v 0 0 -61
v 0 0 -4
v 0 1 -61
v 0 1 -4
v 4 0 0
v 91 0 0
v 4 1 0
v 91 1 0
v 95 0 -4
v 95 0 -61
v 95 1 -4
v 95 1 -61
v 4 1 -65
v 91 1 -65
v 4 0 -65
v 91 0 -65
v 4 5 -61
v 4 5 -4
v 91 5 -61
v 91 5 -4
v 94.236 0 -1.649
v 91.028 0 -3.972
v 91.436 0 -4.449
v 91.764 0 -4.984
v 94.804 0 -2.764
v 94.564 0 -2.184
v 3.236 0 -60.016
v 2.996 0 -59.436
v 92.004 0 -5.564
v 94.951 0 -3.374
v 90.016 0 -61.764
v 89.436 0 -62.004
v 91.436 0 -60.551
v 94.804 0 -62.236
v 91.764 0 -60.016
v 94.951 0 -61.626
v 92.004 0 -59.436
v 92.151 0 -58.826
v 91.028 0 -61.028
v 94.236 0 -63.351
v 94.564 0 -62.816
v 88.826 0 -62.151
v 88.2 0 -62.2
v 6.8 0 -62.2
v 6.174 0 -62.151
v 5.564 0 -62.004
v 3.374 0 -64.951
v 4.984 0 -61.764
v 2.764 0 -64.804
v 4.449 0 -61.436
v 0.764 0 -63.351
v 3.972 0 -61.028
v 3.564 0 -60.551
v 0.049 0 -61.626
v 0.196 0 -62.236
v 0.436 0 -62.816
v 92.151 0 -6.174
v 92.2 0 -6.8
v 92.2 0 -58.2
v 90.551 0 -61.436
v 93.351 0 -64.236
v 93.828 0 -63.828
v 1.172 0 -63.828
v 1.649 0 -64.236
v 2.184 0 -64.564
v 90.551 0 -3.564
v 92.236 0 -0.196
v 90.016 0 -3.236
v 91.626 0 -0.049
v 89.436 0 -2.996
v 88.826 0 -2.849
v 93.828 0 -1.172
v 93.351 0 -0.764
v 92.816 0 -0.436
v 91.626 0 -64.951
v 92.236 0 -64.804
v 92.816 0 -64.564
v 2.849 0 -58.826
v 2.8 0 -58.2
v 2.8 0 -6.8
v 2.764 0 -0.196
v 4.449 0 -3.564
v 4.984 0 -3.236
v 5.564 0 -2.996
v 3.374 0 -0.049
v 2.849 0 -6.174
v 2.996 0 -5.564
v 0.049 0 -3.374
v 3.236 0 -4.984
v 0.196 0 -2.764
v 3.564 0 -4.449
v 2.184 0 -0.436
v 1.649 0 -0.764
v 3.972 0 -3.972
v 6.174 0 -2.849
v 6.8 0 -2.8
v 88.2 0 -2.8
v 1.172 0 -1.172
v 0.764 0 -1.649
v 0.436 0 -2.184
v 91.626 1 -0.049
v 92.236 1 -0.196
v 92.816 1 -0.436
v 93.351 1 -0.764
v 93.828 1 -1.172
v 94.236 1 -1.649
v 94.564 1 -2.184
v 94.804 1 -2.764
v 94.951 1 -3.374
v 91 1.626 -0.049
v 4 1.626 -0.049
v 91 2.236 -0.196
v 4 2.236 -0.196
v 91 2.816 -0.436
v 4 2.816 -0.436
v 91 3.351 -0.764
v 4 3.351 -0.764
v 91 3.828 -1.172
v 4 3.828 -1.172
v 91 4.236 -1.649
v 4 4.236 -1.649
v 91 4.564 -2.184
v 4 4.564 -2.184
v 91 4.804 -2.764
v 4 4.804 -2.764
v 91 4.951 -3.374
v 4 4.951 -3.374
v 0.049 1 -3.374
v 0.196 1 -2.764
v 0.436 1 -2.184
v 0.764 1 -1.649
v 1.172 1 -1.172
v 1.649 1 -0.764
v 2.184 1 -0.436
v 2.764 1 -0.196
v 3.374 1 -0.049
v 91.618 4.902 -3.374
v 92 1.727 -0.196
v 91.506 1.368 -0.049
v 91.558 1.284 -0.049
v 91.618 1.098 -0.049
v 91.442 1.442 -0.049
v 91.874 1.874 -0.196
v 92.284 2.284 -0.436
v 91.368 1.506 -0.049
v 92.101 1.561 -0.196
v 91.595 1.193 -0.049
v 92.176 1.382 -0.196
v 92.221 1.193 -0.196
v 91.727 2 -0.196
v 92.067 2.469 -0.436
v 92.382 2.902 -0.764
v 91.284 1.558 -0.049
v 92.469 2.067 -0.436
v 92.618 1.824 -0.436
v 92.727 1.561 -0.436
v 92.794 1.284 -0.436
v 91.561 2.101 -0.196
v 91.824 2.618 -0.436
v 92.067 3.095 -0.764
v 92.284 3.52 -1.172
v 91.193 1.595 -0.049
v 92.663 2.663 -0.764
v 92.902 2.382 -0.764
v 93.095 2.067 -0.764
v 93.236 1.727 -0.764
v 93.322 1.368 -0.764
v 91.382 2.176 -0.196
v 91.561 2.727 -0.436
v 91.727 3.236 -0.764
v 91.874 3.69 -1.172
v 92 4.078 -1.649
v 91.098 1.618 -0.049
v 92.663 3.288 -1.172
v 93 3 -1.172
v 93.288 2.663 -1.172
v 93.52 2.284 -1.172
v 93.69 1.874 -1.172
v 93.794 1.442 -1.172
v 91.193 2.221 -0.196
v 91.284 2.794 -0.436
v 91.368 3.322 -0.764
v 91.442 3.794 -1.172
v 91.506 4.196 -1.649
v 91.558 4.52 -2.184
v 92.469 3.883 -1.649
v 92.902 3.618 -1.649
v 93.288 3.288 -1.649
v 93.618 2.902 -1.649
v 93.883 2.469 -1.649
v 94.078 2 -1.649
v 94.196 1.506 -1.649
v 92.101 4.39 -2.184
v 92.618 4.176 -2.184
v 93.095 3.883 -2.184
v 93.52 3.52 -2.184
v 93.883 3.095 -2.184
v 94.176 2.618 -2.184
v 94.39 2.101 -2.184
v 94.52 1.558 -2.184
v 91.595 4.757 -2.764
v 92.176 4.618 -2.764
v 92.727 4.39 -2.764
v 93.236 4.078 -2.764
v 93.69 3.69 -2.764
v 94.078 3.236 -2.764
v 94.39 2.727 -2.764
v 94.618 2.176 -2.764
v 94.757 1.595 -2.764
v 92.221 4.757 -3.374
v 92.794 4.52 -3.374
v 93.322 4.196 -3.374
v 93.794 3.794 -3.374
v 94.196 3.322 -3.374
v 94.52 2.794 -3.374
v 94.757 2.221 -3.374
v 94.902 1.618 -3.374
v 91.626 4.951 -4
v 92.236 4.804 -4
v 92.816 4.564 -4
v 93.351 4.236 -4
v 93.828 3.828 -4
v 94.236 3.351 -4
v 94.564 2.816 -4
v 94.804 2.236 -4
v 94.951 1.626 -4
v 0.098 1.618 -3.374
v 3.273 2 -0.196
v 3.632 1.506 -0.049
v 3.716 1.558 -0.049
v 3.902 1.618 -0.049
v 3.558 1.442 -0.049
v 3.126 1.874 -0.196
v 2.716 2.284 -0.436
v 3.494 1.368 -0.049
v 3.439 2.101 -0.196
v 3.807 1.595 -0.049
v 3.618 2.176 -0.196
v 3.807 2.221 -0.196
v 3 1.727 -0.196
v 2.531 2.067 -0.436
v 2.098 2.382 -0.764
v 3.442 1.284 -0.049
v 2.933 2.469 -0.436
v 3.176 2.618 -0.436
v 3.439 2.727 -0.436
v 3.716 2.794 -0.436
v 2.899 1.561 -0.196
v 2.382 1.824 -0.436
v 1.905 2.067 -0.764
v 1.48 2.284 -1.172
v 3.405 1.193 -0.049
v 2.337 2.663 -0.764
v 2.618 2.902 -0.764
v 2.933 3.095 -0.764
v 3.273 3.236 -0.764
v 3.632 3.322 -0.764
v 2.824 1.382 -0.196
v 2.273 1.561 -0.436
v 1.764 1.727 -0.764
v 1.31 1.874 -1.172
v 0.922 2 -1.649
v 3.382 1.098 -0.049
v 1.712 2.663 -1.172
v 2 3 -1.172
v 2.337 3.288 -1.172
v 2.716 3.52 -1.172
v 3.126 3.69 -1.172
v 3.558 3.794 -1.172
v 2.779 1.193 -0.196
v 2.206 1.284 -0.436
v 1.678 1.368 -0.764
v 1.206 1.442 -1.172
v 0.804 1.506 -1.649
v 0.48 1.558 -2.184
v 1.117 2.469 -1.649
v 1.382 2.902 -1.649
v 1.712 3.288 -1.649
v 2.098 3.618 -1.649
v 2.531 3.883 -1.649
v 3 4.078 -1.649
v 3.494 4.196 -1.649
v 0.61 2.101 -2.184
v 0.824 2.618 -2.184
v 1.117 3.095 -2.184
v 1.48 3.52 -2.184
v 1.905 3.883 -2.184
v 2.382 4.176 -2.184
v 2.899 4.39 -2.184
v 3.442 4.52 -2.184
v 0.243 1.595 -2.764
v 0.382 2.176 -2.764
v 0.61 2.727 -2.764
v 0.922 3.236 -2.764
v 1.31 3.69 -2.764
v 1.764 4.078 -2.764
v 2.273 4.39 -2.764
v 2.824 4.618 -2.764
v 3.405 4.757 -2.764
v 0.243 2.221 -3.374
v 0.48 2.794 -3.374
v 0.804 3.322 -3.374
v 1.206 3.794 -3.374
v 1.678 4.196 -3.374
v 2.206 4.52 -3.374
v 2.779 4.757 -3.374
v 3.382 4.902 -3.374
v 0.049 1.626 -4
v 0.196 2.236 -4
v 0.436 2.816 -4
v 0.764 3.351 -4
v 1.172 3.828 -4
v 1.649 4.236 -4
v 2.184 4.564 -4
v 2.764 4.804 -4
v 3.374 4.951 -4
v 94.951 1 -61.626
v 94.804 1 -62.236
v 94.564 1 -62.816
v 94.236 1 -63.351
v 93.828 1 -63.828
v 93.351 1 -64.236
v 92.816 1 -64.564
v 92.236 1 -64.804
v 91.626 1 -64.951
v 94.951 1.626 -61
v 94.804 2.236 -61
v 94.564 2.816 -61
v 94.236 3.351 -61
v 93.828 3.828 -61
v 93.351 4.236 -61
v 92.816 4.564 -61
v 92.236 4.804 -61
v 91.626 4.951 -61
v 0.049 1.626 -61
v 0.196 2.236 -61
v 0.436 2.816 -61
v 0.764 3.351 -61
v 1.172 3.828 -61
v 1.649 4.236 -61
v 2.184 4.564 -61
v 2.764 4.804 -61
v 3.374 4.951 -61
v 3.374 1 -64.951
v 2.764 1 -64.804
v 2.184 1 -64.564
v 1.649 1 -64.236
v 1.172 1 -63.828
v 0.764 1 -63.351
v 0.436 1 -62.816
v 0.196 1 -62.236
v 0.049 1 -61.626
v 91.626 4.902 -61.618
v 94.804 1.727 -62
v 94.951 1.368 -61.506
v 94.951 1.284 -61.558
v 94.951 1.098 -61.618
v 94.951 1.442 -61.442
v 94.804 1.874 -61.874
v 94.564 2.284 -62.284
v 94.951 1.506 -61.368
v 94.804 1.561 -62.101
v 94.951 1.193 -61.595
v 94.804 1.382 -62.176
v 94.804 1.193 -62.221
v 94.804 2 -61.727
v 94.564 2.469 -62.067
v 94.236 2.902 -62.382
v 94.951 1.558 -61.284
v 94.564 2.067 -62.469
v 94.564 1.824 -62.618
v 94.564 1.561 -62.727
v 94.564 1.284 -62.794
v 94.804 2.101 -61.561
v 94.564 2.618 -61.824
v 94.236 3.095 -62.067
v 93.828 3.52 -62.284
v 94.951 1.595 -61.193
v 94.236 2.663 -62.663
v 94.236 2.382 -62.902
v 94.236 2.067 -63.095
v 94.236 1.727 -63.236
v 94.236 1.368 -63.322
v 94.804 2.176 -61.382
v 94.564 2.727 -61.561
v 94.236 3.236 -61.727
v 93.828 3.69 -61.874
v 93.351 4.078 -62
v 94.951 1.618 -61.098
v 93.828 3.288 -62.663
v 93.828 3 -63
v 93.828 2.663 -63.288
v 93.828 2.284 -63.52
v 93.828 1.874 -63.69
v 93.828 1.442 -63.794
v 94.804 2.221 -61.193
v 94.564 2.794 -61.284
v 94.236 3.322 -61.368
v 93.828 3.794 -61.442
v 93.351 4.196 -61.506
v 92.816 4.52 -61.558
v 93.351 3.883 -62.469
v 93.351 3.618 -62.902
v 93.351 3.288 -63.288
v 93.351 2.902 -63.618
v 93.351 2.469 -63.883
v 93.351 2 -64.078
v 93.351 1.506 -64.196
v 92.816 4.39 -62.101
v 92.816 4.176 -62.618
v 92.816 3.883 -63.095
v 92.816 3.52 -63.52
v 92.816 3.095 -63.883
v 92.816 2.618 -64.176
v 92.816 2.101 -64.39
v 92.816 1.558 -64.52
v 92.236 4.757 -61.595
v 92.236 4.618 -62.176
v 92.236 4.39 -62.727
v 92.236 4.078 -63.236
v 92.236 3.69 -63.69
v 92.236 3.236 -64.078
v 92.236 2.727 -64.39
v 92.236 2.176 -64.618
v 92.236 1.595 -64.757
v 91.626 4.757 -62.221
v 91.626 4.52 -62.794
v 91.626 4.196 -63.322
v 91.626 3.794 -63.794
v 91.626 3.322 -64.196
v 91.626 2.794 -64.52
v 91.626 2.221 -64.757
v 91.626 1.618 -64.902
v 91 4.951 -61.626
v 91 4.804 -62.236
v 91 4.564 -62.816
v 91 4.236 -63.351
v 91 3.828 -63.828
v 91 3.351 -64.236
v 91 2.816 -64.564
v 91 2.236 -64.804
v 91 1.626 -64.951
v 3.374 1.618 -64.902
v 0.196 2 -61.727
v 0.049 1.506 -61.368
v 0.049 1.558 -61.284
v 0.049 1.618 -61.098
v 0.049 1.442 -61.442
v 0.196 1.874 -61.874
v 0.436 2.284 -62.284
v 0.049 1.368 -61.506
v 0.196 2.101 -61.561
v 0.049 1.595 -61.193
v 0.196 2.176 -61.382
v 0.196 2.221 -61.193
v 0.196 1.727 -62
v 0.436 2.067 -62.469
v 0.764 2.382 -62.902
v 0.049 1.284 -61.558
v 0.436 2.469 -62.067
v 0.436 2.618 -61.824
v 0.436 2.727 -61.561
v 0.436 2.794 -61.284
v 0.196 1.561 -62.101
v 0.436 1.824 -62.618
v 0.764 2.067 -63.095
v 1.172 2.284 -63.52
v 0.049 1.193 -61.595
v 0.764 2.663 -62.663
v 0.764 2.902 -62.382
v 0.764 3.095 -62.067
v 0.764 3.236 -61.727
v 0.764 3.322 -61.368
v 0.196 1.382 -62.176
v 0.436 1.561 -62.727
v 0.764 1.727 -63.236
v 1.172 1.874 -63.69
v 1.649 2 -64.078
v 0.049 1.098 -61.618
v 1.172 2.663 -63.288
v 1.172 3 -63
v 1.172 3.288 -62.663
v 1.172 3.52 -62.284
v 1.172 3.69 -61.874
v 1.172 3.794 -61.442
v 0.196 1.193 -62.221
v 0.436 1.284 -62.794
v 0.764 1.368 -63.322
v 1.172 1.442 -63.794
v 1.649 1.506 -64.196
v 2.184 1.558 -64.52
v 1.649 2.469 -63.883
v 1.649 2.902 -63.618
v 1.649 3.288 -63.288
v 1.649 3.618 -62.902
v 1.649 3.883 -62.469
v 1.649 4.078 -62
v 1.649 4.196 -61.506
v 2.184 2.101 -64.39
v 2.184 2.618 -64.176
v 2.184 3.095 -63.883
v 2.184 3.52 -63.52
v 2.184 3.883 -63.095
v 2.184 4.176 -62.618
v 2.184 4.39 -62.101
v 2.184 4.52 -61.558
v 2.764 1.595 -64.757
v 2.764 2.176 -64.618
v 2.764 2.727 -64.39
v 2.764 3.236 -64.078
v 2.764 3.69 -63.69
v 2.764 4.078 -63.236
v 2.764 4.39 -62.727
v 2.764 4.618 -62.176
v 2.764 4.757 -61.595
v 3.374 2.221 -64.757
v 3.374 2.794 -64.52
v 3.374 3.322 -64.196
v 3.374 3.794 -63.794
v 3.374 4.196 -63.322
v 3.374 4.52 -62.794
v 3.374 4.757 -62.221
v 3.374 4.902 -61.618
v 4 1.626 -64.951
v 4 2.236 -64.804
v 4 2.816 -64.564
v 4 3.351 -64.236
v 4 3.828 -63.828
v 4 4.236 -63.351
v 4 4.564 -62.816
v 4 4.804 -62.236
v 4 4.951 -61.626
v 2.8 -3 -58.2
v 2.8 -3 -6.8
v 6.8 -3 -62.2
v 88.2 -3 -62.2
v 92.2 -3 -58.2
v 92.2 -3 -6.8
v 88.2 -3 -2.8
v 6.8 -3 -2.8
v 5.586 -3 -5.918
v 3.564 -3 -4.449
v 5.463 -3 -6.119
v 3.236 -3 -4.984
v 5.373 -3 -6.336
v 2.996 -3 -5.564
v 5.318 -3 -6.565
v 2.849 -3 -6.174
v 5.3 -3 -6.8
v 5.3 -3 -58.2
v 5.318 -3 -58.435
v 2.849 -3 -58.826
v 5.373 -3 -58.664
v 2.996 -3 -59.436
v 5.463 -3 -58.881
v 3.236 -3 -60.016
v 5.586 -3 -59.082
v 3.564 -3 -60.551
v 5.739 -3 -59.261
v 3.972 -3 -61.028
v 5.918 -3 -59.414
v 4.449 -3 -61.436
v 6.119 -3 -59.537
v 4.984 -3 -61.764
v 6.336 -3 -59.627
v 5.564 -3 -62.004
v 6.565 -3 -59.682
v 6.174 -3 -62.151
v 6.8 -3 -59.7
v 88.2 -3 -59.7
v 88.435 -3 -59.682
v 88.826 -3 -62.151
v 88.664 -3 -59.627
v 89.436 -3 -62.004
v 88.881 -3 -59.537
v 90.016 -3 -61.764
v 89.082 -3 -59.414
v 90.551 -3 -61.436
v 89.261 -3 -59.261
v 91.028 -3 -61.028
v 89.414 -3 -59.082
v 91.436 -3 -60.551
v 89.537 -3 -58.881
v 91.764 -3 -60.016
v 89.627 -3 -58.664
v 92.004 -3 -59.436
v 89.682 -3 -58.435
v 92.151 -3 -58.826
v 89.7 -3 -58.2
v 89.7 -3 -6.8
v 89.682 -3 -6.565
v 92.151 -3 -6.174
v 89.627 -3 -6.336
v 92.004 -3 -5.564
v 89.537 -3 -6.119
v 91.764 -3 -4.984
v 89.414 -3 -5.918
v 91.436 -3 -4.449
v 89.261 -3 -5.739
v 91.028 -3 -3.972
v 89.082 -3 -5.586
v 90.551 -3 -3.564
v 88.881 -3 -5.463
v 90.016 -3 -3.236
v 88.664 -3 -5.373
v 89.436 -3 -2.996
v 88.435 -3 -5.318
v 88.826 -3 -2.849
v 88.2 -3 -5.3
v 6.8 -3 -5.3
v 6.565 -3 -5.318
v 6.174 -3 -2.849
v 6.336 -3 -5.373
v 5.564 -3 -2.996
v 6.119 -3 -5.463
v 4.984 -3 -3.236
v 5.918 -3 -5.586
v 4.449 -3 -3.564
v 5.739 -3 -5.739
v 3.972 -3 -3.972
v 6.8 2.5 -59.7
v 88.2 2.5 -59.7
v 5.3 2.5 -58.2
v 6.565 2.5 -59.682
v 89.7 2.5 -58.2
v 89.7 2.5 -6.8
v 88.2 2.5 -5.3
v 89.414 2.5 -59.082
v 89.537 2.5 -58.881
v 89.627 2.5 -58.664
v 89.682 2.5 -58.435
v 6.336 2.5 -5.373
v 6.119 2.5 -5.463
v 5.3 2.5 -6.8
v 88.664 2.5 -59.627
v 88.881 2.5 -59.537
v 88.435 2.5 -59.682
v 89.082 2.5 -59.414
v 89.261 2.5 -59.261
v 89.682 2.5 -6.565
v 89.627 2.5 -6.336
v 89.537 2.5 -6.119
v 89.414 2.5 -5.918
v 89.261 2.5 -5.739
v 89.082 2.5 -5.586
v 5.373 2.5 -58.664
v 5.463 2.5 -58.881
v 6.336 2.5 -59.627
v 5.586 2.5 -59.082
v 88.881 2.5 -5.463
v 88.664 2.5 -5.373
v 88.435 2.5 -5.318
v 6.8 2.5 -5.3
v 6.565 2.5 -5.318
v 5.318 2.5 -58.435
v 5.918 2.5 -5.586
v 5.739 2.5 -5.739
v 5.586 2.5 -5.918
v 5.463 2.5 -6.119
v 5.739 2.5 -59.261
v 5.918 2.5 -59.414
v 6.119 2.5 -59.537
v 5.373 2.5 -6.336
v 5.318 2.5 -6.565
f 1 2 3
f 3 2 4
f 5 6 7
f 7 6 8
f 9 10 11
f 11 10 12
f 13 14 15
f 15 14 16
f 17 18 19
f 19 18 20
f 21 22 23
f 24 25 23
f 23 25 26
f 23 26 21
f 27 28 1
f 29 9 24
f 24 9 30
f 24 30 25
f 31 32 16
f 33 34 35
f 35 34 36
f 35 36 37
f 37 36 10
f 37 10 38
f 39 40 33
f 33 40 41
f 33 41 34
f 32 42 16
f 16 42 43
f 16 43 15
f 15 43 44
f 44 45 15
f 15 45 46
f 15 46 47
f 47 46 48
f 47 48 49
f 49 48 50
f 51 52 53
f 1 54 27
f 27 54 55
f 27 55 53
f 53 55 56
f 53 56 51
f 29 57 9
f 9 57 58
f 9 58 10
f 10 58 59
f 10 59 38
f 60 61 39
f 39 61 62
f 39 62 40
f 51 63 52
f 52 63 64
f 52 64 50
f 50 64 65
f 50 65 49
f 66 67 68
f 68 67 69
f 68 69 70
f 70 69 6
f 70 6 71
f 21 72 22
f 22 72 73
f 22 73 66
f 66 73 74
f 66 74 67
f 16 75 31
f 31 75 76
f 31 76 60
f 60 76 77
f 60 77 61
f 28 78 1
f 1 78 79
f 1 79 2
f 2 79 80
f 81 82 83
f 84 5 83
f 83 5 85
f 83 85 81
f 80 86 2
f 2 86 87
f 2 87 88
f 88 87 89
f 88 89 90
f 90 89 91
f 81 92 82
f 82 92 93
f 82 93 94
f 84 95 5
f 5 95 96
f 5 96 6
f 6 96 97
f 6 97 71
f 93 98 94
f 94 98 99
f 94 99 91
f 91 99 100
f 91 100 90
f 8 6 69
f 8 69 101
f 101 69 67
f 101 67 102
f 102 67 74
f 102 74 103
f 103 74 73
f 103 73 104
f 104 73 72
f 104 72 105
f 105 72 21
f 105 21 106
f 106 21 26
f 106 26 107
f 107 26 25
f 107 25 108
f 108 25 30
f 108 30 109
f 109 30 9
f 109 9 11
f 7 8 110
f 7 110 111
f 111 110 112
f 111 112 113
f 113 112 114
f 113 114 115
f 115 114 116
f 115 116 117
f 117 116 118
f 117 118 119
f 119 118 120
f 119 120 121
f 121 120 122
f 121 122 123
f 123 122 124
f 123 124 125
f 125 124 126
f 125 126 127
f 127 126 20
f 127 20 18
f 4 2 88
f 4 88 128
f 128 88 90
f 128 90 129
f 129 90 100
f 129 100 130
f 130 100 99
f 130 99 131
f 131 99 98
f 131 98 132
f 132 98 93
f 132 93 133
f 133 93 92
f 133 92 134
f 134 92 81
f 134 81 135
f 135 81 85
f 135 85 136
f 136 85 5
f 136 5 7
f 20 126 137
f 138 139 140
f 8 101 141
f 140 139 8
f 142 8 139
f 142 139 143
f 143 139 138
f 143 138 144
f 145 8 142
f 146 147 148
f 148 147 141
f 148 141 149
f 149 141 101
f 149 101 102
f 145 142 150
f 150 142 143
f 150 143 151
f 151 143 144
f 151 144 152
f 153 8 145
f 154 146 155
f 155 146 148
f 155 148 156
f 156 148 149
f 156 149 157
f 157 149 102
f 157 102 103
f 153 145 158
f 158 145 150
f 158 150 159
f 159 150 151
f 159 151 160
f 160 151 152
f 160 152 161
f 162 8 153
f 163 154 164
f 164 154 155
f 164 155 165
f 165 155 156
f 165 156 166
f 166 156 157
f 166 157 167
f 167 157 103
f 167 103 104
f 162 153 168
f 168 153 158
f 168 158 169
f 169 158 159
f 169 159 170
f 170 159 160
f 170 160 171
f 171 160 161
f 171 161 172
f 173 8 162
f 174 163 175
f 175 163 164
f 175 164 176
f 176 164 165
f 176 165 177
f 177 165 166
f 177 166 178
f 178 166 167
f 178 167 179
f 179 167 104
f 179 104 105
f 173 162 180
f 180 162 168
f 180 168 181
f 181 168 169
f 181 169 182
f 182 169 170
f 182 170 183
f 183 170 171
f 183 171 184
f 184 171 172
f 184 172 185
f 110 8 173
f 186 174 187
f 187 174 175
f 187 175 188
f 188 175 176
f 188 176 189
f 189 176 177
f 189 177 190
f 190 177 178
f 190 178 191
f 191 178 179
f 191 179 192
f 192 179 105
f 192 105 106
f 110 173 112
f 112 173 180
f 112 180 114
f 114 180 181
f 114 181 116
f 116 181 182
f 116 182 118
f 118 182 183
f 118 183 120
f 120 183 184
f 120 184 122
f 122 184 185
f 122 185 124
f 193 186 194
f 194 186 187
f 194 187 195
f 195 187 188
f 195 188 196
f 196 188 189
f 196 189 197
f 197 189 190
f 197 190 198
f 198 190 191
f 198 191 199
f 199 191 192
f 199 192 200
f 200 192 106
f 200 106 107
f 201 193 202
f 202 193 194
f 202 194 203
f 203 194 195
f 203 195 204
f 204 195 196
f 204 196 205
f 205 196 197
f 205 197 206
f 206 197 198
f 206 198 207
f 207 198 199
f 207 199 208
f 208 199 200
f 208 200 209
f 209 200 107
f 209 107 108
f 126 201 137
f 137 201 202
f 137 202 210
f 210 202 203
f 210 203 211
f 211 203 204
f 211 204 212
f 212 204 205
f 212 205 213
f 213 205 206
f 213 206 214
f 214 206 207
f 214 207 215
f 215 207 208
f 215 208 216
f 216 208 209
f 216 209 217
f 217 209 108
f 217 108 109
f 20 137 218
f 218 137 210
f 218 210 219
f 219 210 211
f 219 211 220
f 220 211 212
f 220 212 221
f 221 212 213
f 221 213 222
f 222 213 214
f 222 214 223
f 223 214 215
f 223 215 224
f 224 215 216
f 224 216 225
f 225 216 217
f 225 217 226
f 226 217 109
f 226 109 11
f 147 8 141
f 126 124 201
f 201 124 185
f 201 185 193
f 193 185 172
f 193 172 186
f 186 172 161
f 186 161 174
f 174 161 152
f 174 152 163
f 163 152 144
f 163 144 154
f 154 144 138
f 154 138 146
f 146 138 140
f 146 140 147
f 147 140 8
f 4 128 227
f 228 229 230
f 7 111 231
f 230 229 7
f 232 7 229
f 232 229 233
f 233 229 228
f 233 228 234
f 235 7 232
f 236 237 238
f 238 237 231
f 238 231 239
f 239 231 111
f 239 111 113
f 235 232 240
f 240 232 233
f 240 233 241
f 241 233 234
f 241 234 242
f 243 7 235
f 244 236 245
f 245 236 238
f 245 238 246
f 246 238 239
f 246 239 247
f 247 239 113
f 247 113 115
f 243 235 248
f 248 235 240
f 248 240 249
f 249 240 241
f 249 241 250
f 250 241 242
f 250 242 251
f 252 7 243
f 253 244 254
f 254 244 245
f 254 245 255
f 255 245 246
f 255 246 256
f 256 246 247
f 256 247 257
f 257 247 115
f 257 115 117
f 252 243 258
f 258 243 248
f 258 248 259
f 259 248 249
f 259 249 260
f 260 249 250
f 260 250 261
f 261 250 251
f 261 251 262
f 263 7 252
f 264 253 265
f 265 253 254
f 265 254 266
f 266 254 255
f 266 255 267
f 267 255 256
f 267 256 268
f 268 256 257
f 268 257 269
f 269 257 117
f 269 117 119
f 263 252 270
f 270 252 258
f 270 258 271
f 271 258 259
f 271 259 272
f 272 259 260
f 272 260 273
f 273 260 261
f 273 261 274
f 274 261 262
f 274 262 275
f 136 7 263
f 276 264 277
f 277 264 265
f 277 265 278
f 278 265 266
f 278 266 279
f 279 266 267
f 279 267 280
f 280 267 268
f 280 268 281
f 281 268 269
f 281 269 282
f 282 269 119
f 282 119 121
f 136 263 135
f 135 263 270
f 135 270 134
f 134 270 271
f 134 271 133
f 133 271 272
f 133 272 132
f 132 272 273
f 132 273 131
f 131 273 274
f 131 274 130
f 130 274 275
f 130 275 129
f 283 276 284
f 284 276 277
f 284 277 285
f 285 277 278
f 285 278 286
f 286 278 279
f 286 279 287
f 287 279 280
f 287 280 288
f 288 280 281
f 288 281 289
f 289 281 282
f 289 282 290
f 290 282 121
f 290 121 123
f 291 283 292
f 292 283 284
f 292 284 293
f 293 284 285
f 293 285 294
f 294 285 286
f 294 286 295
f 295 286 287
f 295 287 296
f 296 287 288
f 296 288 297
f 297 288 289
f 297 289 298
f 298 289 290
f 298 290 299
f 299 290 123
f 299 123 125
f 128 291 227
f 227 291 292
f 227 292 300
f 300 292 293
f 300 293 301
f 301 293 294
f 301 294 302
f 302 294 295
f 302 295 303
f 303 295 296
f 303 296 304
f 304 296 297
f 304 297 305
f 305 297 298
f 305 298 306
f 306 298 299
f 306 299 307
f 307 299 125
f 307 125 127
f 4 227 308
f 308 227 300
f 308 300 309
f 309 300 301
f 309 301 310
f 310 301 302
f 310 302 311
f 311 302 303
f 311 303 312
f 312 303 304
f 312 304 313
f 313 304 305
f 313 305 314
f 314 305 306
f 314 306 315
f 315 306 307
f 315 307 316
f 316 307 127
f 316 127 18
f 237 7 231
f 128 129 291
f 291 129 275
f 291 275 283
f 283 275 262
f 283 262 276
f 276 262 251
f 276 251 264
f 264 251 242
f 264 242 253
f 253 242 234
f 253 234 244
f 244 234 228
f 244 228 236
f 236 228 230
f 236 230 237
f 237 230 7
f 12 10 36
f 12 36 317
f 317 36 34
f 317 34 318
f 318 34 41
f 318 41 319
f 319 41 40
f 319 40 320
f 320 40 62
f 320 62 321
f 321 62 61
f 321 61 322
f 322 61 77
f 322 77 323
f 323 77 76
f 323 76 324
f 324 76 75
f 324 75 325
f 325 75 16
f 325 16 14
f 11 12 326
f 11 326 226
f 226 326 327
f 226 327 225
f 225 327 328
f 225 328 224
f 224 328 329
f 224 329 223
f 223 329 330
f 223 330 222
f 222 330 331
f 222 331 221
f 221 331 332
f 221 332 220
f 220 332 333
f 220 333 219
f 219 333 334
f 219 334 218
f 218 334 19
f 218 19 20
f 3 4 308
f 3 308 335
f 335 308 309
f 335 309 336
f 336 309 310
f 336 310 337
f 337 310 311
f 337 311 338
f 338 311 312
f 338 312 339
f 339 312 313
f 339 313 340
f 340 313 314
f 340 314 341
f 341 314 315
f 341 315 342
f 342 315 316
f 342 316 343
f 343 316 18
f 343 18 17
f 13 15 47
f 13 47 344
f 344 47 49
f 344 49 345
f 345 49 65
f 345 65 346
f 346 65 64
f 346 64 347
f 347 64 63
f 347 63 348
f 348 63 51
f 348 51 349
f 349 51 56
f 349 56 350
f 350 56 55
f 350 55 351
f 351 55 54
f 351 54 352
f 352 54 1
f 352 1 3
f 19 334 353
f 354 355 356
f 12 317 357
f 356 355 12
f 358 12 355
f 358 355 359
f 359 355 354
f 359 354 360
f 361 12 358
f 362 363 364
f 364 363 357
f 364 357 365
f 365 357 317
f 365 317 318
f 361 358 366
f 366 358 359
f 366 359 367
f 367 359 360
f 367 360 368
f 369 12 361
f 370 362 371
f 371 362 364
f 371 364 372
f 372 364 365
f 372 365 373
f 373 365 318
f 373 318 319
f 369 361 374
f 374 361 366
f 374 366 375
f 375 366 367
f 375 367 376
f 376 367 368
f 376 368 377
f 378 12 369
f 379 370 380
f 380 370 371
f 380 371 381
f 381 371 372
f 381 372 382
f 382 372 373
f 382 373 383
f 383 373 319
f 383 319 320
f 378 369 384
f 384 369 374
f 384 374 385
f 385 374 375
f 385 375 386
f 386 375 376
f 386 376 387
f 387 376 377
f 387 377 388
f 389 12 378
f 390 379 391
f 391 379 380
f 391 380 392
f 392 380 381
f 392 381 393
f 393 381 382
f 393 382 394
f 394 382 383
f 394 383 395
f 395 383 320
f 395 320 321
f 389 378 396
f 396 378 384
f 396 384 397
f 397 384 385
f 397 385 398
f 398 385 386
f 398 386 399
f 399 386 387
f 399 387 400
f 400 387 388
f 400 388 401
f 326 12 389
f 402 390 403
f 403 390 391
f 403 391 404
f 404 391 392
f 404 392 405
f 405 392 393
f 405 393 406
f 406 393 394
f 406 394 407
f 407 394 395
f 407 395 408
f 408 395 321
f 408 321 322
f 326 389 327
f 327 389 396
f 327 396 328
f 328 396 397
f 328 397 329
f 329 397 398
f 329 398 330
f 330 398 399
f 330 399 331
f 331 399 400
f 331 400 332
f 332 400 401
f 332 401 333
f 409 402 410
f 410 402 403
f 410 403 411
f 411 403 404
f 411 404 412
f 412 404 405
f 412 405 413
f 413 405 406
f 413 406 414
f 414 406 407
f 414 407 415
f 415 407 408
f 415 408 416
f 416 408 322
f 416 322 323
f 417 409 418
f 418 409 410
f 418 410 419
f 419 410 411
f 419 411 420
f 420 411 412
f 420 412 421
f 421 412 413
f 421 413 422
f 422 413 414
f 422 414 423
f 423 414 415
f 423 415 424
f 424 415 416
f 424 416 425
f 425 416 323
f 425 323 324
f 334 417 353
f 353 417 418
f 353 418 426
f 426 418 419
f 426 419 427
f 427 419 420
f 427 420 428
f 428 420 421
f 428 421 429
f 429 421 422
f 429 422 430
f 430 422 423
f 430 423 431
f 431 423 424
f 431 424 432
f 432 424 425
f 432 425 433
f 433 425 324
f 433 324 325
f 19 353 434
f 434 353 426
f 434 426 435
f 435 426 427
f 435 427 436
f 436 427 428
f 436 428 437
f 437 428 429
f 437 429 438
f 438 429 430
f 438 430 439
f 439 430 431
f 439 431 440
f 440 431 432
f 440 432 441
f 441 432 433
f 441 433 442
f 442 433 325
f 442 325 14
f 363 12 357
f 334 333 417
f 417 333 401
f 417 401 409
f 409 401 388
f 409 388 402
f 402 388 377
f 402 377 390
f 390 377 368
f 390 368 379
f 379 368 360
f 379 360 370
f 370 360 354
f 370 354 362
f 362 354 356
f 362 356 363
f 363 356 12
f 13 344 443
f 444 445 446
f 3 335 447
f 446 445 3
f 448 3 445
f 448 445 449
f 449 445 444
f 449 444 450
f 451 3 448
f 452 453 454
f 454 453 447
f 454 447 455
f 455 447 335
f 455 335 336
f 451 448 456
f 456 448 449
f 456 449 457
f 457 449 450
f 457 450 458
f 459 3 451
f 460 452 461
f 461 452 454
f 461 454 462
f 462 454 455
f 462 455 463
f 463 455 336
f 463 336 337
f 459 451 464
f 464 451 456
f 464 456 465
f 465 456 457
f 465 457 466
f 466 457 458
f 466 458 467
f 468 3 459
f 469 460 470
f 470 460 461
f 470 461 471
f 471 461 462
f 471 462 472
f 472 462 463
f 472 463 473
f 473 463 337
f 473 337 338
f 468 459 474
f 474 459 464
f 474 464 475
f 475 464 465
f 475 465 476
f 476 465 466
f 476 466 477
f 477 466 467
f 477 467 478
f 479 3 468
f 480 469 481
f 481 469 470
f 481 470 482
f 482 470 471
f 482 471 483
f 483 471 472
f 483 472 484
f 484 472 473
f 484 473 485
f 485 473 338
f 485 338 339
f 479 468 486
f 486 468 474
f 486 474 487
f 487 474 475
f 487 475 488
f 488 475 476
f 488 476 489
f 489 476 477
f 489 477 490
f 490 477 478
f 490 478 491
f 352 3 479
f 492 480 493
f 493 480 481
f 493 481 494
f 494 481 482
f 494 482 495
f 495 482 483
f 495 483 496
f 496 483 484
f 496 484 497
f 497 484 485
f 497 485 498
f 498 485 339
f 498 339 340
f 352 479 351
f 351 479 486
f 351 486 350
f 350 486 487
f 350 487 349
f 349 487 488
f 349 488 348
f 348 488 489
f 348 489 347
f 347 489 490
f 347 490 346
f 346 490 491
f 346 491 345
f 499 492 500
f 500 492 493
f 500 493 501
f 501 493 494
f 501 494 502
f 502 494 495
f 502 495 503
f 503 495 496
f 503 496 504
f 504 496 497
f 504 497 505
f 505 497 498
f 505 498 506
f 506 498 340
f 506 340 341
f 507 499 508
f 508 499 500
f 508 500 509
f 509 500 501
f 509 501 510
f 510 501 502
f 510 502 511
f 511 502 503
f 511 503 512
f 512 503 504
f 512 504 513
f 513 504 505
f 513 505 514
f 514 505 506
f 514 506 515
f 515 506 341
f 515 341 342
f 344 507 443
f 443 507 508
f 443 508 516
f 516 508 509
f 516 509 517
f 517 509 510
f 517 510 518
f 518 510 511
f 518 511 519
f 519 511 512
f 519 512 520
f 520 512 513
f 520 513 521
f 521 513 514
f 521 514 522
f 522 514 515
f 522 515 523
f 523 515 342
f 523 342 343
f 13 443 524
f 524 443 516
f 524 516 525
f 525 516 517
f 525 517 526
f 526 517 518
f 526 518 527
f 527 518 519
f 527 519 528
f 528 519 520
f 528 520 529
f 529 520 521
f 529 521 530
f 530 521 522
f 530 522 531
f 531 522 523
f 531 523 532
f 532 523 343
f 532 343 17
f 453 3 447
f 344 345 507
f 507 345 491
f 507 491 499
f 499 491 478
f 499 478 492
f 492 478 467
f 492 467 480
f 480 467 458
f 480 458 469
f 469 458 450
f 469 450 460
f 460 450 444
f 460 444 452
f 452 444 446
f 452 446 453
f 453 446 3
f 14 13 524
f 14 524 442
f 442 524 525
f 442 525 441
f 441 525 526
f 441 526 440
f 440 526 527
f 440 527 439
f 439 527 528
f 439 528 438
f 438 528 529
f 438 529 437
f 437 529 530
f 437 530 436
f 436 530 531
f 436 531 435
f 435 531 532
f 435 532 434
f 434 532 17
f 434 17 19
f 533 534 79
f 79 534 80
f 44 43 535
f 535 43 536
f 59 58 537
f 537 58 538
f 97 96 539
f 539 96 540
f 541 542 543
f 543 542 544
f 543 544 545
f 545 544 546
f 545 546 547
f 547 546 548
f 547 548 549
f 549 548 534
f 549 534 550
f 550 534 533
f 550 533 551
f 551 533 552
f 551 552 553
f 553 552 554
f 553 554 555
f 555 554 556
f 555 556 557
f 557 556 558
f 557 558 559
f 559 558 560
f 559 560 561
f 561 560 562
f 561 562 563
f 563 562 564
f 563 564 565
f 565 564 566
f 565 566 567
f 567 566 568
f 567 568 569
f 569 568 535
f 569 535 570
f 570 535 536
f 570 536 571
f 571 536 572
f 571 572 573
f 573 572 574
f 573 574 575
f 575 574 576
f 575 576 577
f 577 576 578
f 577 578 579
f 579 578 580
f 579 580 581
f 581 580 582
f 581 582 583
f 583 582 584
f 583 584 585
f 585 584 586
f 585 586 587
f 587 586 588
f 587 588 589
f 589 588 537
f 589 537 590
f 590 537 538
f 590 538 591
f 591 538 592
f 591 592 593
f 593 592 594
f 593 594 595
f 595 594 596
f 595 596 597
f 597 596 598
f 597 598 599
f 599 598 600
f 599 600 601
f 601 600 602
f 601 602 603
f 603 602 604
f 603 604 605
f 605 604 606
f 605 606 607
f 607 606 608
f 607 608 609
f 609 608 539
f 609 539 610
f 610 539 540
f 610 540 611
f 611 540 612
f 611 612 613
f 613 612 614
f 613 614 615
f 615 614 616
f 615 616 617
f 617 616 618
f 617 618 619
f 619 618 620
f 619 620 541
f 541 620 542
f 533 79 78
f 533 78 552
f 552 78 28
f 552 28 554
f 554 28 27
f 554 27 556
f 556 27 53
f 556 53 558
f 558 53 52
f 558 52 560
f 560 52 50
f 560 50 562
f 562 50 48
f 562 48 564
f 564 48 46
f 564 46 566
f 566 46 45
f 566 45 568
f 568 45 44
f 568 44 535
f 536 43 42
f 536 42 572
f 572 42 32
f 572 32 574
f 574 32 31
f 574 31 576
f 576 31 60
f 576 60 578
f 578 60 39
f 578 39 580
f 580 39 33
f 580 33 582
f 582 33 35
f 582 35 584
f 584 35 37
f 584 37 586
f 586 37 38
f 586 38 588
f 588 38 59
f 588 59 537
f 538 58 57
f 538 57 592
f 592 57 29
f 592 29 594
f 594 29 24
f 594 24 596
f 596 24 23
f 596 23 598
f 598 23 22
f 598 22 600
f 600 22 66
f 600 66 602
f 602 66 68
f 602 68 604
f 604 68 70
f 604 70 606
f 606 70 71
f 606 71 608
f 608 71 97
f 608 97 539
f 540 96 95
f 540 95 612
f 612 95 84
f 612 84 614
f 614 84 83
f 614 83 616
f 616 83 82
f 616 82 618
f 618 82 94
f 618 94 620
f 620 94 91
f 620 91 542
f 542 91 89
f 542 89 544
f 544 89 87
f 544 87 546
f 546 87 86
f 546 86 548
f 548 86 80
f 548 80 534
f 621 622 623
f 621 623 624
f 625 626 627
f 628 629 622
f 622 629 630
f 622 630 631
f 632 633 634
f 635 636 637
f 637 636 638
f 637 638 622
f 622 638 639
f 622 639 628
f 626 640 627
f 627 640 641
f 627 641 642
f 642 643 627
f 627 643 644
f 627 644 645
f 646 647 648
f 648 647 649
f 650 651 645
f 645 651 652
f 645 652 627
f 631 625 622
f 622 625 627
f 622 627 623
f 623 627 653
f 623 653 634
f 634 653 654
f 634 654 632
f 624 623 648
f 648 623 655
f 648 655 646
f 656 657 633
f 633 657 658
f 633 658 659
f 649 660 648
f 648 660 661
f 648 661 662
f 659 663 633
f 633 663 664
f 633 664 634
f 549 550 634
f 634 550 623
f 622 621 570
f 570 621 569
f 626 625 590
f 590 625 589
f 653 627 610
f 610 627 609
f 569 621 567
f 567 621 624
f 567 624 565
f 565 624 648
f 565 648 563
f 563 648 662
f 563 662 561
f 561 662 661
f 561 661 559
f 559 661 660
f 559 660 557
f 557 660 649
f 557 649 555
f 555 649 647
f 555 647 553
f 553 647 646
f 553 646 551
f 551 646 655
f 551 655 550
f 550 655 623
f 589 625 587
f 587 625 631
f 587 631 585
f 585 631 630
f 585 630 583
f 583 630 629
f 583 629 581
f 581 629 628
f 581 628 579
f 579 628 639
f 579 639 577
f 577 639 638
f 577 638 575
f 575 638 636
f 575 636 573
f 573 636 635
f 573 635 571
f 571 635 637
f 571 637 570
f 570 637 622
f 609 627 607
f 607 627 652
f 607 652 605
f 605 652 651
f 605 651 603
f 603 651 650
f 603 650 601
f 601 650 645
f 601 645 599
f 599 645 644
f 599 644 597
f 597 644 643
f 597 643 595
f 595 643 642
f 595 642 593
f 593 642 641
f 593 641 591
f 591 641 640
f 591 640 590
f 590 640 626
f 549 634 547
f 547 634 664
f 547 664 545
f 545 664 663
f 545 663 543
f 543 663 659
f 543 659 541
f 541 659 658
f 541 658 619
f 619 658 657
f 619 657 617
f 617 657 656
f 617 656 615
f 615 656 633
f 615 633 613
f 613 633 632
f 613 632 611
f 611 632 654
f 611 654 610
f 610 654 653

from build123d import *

# Parameters (mm, degrees)
SKETCH1_W           = 95
SKETCH1_H           = 65
BOSS_EXTRUDE1_DEPTH = 5
FILLET2_R           = 4
SKETCH3_W           = 89.4
SKETCH3_H           = 59.4
BOSS_EXTRUDE3_DEPTH = 3
FILLET3_R           = 4
SHELL1_START        = -3
SHELL1_DEPTH        = 5.5


# Read off the part's stored shape, not the designer's step: Shell1
with BuildPart() as part:
    # Sketch1 → Boss-Extrude1 (new body)
    with BuildSketch(Plane(origin=(0, 0, 0), x_dir=(1, 0, 0), z_dir=(0, 1, 0))):
        with Locations((47.5, 32.5)):
            Rectangle(SKETCH1_W, SKETCH1_H)
    extrude(amount=BOSS_EXTRUDE1_DEPTH)

    # Fillet2
    fillet2_edges = [part.edges().sort_by_distance(p)[0] for p in [
        (95, 5, -32.5),
        (47.5, 5, -65),
        (0, 5, -32.5),
        (0, 2.5, -65),
        (95, 2.5, -65),
        (95, 2.5, 0),
        (0, 2.5, 0),
        (47.5, 5, 0),
    ]]
    fillet(fillet2_edges, radius=FILLET2_R)

    # Sketch3 → Boss-Extrude3 (add)
    with BuildSketch(Plane.XZ):
        with Locations((47.5, -32.5)):
            Rectangle(SKETCH3_W, SKETCH3_H)
    extrude(amount=BOSS_EXTRUDE3_DEPTH)

    # Fillet3
    fillet3_edges = [part.edges().sort_by_distance(p)[0] for p in [
        (2.8, -1.5, -2.8),
        (2.8, -1.5, -62.2),
        (92.2, -1.5, -62.2),
        (92.2, -1.5, -2.8),
    ]]
    fillet(fillet3_edges, radius=FILLET3_R)

    # Shell1 outline → Shell1 (cut)
    with BuildSketch(Plane(origin=(0, 0, 0), x_dir=(1, 0, 0), z_dir=(0, 1, 0)).offset(SHELL1_START)):
        with BuildLine():
            Line((5.3, 58.2), (5.3, 6.8))
            ThreePointArc((5.3, 6.8), (5.739339828, 5.739339828), (6.8, 5.3))
            Line((6.8, 5.3), (88.2, 5.3))
            ThreePointArc((88.2, 5.3), (89.260660172, 5.739339828), (89.7, 6.8))
            Line((89.7, 6.8), (89.7, 58.2))
            ThreePointArc((89.7, 58.2), (89.260660172, 59.260660172), (88.2, 59.7))
            Line((88.2, 59.7), (6.8, 59.7))
            ThreePointArc((6.8, 59.7), (5.739339828, 59.260660172), (5.3, 58.2))
        make_face()
    extrude(amount=SHELL1_DEPTH, mode=Mode.SUBTRACT)


solid = part.part
